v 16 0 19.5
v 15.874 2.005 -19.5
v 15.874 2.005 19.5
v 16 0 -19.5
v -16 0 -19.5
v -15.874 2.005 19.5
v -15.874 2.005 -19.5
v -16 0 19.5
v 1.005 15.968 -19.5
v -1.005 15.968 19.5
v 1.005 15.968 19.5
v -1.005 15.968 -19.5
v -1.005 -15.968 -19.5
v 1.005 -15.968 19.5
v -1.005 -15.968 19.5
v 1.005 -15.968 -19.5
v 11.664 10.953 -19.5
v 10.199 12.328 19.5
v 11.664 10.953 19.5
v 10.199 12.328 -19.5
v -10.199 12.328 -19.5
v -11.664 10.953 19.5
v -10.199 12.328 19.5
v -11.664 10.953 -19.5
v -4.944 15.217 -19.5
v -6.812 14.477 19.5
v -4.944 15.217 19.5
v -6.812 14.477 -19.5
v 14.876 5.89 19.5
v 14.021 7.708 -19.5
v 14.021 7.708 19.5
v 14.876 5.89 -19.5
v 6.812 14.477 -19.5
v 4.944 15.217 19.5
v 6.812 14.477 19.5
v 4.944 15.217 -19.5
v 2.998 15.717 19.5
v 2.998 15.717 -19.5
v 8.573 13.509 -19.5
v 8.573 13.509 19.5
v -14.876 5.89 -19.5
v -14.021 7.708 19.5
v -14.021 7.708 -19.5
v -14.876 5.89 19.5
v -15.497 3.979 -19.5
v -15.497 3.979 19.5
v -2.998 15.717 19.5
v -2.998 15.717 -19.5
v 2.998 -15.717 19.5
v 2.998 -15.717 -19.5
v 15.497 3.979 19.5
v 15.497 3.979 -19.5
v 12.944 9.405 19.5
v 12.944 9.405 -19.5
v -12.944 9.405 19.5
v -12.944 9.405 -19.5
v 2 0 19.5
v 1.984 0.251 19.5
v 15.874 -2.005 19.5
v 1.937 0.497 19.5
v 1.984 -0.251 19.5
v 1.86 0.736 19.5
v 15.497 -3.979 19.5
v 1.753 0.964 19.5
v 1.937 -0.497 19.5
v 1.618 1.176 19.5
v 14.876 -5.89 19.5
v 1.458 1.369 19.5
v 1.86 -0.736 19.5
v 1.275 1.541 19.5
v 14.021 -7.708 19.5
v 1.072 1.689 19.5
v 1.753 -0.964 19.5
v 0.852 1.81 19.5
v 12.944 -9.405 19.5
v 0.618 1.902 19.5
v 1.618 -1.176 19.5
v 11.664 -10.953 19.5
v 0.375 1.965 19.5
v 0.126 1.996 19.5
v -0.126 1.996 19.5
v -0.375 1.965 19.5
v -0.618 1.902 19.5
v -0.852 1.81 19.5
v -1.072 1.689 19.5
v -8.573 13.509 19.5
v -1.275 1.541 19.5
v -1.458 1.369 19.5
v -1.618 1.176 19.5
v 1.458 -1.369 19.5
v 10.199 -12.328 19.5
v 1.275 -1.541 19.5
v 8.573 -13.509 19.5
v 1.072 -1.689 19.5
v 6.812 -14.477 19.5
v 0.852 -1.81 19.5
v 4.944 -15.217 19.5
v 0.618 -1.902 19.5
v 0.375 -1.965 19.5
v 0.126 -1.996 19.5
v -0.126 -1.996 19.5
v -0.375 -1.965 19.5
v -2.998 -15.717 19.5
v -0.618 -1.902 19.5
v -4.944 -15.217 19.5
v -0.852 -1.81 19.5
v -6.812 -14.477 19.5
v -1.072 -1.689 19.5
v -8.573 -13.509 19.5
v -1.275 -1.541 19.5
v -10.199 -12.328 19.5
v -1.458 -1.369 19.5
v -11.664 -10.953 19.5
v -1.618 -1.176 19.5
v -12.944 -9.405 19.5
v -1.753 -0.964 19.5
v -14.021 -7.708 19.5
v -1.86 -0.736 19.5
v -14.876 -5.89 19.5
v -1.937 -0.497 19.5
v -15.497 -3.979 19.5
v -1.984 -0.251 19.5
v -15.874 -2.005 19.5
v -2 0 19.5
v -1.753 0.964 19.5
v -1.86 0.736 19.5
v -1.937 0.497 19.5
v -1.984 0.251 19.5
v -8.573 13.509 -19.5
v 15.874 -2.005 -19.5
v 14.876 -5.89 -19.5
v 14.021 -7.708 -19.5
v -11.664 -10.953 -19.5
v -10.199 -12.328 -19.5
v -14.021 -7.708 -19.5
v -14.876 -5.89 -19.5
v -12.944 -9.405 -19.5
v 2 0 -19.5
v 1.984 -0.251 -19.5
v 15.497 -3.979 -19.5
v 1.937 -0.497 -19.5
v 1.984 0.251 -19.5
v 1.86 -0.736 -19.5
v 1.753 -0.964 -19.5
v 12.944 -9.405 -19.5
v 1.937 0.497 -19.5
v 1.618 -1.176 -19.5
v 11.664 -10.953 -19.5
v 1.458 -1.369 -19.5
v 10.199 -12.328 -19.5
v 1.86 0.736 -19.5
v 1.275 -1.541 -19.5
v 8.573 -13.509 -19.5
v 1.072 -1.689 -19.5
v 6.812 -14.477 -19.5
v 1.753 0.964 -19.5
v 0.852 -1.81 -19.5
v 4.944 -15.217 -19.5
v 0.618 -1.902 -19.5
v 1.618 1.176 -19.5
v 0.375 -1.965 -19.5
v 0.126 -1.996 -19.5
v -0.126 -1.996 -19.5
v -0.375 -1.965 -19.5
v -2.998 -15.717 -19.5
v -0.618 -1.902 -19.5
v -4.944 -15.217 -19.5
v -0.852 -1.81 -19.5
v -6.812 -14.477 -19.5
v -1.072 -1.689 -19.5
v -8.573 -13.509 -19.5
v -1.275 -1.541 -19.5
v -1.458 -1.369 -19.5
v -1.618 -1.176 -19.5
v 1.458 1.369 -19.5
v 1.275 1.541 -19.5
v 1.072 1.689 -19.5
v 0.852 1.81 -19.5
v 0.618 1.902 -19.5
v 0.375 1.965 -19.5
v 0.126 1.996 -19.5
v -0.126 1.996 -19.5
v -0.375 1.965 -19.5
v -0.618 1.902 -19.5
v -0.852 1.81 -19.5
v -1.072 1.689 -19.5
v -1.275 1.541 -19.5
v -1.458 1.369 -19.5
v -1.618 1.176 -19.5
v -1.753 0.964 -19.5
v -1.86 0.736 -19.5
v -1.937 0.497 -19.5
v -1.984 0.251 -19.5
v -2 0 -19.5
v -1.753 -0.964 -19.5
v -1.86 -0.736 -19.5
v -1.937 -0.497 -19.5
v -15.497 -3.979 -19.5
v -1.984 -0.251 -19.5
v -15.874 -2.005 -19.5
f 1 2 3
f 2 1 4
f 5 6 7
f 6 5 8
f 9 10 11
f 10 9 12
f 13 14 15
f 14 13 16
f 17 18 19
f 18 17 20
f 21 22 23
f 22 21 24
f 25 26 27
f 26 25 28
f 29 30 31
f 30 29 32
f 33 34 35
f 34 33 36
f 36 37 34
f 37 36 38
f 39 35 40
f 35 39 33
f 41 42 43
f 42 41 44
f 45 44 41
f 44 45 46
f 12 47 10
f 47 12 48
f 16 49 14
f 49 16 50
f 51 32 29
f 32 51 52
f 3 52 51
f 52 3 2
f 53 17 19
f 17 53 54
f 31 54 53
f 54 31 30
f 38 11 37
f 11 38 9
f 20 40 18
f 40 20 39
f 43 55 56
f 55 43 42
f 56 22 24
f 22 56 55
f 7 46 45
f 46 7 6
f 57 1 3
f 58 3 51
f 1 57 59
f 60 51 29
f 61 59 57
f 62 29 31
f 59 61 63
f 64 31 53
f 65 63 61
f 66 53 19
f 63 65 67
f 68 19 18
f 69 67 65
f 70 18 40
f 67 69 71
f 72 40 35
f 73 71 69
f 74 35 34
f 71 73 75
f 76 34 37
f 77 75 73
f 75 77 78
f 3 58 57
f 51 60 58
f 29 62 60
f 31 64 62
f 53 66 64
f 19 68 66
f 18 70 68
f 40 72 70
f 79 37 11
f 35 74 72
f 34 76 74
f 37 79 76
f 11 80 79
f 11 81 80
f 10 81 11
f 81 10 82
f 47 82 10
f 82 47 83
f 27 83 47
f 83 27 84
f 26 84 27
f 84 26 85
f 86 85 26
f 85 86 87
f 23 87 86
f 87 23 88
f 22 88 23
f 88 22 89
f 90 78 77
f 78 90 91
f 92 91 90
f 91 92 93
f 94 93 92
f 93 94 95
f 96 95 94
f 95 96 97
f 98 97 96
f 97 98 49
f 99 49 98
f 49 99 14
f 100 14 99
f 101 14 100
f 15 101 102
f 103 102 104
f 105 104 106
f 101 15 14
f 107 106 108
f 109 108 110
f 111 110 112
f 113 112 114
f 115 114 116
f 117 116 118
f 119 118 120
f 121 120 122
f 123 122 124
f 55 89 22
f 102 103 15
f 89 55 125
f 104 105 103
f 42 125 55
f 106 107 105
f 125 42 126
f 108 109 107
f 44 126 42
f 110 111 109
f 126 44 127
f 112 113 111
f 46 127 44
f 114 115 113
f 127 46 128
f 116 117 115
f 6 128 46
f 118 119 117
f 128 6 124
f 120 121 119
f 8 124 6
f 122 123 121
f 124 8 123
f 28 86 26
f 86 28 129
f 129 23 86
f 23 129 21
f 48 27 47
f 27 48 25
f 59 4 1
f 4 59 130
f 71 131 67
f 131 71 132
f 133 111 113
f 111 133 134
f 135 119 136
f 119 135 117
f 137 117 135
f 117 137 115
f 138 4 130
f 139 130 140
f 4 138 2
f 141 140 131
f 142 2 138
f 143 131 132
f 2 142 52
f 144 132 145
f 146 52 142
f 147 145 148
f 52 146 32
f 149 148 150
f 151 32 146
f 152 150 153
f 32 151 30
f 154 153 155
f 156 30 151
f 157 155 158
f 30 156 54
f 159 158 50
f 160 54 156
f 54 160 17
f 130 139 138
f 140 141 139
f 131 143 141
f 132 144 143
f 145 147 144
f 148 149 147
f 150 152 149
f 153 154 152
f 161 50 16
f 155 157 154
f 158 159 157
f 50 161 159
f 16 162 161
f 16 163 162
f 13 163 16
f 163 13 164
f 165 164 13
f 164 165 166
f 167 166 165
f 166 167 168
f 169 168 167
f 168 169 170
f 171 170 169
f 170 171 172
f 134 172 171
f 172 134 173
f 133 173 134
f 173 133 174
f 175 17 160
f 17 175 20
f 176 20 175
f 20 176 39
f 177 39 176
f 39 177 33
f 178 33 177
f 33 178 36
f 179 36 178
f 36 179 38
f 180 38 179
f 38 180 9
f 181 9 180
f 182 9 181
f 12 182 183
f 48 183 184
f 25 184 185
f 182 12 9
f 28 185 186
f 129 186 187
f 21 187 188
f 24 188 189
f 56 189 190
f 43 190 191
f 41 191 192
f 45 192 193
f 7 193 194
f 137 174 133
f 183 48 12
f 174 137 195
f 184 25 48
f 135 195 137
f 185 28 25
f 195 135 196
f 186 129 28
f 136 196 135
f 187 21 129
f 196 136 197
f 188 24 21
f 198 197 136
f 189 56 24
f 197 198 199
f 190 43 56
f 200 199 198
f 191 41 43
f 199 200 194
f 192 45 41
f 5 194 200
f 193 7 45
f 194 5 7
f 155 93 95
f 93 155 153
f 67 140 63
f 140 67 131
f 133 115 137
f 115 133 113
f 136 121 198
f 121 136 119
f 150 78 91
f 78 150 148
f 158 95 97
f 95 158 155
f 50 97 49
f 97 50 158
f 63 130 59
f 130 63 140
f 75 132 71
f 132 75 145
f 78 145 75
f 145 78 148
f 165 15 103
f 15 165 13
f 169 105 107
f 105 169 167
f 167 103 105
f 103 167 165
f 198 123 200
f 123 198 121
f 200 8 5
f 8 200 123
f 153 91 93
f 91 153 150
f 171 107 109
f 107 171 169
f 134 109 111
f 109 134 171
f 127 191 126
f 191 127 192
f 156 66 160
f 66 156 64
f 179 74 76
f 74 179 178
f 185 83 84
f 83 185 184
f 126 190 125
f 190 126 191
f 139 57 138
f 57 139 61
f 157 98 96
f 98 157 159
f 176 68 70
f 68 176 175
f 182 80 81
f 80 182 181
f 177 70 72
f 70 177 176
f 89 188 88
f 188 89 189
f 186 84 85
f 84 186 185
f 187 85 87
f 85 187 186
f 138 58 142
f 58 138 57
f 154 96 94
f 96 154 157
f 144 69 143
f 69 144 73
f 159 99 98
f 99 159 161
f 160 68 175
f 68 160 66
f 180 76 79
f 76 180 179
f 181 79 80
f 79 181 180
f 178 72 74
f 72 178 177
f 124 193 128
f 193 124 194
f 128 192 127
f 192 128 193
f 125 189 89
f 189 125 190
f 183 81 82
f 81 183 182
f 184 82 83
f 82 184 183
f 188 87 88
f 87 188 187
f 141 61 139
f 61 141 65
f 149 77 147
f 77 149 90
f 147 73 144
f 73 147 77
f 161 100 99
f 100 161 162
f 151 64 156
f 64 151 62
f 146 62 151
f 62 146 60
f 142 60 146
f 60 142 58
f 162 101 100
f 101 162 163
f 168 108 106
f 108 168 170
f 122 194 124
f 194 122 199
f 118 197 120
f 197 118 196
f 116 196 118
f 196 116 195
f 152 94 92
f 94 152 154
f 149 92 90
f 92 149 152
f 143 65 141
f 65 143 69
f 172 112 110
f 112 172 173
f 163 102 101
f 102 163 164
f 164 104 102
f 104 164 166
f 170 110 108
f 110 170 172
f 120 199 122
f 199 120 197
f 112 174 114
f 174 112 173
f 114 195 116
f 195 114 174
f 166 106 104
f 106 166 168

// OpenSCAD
$fn = 50;


difference() {
	union() {
		translate(v = [0, 0, -19.5000000000]) {
			cylinder(h = 39, r = 16.0000000000);
		}
	}
	union() {
		translate(v = [0, 0, -100.0000000000]) {
			cylinder(h = 200, r = 2);
		}
	}
}
